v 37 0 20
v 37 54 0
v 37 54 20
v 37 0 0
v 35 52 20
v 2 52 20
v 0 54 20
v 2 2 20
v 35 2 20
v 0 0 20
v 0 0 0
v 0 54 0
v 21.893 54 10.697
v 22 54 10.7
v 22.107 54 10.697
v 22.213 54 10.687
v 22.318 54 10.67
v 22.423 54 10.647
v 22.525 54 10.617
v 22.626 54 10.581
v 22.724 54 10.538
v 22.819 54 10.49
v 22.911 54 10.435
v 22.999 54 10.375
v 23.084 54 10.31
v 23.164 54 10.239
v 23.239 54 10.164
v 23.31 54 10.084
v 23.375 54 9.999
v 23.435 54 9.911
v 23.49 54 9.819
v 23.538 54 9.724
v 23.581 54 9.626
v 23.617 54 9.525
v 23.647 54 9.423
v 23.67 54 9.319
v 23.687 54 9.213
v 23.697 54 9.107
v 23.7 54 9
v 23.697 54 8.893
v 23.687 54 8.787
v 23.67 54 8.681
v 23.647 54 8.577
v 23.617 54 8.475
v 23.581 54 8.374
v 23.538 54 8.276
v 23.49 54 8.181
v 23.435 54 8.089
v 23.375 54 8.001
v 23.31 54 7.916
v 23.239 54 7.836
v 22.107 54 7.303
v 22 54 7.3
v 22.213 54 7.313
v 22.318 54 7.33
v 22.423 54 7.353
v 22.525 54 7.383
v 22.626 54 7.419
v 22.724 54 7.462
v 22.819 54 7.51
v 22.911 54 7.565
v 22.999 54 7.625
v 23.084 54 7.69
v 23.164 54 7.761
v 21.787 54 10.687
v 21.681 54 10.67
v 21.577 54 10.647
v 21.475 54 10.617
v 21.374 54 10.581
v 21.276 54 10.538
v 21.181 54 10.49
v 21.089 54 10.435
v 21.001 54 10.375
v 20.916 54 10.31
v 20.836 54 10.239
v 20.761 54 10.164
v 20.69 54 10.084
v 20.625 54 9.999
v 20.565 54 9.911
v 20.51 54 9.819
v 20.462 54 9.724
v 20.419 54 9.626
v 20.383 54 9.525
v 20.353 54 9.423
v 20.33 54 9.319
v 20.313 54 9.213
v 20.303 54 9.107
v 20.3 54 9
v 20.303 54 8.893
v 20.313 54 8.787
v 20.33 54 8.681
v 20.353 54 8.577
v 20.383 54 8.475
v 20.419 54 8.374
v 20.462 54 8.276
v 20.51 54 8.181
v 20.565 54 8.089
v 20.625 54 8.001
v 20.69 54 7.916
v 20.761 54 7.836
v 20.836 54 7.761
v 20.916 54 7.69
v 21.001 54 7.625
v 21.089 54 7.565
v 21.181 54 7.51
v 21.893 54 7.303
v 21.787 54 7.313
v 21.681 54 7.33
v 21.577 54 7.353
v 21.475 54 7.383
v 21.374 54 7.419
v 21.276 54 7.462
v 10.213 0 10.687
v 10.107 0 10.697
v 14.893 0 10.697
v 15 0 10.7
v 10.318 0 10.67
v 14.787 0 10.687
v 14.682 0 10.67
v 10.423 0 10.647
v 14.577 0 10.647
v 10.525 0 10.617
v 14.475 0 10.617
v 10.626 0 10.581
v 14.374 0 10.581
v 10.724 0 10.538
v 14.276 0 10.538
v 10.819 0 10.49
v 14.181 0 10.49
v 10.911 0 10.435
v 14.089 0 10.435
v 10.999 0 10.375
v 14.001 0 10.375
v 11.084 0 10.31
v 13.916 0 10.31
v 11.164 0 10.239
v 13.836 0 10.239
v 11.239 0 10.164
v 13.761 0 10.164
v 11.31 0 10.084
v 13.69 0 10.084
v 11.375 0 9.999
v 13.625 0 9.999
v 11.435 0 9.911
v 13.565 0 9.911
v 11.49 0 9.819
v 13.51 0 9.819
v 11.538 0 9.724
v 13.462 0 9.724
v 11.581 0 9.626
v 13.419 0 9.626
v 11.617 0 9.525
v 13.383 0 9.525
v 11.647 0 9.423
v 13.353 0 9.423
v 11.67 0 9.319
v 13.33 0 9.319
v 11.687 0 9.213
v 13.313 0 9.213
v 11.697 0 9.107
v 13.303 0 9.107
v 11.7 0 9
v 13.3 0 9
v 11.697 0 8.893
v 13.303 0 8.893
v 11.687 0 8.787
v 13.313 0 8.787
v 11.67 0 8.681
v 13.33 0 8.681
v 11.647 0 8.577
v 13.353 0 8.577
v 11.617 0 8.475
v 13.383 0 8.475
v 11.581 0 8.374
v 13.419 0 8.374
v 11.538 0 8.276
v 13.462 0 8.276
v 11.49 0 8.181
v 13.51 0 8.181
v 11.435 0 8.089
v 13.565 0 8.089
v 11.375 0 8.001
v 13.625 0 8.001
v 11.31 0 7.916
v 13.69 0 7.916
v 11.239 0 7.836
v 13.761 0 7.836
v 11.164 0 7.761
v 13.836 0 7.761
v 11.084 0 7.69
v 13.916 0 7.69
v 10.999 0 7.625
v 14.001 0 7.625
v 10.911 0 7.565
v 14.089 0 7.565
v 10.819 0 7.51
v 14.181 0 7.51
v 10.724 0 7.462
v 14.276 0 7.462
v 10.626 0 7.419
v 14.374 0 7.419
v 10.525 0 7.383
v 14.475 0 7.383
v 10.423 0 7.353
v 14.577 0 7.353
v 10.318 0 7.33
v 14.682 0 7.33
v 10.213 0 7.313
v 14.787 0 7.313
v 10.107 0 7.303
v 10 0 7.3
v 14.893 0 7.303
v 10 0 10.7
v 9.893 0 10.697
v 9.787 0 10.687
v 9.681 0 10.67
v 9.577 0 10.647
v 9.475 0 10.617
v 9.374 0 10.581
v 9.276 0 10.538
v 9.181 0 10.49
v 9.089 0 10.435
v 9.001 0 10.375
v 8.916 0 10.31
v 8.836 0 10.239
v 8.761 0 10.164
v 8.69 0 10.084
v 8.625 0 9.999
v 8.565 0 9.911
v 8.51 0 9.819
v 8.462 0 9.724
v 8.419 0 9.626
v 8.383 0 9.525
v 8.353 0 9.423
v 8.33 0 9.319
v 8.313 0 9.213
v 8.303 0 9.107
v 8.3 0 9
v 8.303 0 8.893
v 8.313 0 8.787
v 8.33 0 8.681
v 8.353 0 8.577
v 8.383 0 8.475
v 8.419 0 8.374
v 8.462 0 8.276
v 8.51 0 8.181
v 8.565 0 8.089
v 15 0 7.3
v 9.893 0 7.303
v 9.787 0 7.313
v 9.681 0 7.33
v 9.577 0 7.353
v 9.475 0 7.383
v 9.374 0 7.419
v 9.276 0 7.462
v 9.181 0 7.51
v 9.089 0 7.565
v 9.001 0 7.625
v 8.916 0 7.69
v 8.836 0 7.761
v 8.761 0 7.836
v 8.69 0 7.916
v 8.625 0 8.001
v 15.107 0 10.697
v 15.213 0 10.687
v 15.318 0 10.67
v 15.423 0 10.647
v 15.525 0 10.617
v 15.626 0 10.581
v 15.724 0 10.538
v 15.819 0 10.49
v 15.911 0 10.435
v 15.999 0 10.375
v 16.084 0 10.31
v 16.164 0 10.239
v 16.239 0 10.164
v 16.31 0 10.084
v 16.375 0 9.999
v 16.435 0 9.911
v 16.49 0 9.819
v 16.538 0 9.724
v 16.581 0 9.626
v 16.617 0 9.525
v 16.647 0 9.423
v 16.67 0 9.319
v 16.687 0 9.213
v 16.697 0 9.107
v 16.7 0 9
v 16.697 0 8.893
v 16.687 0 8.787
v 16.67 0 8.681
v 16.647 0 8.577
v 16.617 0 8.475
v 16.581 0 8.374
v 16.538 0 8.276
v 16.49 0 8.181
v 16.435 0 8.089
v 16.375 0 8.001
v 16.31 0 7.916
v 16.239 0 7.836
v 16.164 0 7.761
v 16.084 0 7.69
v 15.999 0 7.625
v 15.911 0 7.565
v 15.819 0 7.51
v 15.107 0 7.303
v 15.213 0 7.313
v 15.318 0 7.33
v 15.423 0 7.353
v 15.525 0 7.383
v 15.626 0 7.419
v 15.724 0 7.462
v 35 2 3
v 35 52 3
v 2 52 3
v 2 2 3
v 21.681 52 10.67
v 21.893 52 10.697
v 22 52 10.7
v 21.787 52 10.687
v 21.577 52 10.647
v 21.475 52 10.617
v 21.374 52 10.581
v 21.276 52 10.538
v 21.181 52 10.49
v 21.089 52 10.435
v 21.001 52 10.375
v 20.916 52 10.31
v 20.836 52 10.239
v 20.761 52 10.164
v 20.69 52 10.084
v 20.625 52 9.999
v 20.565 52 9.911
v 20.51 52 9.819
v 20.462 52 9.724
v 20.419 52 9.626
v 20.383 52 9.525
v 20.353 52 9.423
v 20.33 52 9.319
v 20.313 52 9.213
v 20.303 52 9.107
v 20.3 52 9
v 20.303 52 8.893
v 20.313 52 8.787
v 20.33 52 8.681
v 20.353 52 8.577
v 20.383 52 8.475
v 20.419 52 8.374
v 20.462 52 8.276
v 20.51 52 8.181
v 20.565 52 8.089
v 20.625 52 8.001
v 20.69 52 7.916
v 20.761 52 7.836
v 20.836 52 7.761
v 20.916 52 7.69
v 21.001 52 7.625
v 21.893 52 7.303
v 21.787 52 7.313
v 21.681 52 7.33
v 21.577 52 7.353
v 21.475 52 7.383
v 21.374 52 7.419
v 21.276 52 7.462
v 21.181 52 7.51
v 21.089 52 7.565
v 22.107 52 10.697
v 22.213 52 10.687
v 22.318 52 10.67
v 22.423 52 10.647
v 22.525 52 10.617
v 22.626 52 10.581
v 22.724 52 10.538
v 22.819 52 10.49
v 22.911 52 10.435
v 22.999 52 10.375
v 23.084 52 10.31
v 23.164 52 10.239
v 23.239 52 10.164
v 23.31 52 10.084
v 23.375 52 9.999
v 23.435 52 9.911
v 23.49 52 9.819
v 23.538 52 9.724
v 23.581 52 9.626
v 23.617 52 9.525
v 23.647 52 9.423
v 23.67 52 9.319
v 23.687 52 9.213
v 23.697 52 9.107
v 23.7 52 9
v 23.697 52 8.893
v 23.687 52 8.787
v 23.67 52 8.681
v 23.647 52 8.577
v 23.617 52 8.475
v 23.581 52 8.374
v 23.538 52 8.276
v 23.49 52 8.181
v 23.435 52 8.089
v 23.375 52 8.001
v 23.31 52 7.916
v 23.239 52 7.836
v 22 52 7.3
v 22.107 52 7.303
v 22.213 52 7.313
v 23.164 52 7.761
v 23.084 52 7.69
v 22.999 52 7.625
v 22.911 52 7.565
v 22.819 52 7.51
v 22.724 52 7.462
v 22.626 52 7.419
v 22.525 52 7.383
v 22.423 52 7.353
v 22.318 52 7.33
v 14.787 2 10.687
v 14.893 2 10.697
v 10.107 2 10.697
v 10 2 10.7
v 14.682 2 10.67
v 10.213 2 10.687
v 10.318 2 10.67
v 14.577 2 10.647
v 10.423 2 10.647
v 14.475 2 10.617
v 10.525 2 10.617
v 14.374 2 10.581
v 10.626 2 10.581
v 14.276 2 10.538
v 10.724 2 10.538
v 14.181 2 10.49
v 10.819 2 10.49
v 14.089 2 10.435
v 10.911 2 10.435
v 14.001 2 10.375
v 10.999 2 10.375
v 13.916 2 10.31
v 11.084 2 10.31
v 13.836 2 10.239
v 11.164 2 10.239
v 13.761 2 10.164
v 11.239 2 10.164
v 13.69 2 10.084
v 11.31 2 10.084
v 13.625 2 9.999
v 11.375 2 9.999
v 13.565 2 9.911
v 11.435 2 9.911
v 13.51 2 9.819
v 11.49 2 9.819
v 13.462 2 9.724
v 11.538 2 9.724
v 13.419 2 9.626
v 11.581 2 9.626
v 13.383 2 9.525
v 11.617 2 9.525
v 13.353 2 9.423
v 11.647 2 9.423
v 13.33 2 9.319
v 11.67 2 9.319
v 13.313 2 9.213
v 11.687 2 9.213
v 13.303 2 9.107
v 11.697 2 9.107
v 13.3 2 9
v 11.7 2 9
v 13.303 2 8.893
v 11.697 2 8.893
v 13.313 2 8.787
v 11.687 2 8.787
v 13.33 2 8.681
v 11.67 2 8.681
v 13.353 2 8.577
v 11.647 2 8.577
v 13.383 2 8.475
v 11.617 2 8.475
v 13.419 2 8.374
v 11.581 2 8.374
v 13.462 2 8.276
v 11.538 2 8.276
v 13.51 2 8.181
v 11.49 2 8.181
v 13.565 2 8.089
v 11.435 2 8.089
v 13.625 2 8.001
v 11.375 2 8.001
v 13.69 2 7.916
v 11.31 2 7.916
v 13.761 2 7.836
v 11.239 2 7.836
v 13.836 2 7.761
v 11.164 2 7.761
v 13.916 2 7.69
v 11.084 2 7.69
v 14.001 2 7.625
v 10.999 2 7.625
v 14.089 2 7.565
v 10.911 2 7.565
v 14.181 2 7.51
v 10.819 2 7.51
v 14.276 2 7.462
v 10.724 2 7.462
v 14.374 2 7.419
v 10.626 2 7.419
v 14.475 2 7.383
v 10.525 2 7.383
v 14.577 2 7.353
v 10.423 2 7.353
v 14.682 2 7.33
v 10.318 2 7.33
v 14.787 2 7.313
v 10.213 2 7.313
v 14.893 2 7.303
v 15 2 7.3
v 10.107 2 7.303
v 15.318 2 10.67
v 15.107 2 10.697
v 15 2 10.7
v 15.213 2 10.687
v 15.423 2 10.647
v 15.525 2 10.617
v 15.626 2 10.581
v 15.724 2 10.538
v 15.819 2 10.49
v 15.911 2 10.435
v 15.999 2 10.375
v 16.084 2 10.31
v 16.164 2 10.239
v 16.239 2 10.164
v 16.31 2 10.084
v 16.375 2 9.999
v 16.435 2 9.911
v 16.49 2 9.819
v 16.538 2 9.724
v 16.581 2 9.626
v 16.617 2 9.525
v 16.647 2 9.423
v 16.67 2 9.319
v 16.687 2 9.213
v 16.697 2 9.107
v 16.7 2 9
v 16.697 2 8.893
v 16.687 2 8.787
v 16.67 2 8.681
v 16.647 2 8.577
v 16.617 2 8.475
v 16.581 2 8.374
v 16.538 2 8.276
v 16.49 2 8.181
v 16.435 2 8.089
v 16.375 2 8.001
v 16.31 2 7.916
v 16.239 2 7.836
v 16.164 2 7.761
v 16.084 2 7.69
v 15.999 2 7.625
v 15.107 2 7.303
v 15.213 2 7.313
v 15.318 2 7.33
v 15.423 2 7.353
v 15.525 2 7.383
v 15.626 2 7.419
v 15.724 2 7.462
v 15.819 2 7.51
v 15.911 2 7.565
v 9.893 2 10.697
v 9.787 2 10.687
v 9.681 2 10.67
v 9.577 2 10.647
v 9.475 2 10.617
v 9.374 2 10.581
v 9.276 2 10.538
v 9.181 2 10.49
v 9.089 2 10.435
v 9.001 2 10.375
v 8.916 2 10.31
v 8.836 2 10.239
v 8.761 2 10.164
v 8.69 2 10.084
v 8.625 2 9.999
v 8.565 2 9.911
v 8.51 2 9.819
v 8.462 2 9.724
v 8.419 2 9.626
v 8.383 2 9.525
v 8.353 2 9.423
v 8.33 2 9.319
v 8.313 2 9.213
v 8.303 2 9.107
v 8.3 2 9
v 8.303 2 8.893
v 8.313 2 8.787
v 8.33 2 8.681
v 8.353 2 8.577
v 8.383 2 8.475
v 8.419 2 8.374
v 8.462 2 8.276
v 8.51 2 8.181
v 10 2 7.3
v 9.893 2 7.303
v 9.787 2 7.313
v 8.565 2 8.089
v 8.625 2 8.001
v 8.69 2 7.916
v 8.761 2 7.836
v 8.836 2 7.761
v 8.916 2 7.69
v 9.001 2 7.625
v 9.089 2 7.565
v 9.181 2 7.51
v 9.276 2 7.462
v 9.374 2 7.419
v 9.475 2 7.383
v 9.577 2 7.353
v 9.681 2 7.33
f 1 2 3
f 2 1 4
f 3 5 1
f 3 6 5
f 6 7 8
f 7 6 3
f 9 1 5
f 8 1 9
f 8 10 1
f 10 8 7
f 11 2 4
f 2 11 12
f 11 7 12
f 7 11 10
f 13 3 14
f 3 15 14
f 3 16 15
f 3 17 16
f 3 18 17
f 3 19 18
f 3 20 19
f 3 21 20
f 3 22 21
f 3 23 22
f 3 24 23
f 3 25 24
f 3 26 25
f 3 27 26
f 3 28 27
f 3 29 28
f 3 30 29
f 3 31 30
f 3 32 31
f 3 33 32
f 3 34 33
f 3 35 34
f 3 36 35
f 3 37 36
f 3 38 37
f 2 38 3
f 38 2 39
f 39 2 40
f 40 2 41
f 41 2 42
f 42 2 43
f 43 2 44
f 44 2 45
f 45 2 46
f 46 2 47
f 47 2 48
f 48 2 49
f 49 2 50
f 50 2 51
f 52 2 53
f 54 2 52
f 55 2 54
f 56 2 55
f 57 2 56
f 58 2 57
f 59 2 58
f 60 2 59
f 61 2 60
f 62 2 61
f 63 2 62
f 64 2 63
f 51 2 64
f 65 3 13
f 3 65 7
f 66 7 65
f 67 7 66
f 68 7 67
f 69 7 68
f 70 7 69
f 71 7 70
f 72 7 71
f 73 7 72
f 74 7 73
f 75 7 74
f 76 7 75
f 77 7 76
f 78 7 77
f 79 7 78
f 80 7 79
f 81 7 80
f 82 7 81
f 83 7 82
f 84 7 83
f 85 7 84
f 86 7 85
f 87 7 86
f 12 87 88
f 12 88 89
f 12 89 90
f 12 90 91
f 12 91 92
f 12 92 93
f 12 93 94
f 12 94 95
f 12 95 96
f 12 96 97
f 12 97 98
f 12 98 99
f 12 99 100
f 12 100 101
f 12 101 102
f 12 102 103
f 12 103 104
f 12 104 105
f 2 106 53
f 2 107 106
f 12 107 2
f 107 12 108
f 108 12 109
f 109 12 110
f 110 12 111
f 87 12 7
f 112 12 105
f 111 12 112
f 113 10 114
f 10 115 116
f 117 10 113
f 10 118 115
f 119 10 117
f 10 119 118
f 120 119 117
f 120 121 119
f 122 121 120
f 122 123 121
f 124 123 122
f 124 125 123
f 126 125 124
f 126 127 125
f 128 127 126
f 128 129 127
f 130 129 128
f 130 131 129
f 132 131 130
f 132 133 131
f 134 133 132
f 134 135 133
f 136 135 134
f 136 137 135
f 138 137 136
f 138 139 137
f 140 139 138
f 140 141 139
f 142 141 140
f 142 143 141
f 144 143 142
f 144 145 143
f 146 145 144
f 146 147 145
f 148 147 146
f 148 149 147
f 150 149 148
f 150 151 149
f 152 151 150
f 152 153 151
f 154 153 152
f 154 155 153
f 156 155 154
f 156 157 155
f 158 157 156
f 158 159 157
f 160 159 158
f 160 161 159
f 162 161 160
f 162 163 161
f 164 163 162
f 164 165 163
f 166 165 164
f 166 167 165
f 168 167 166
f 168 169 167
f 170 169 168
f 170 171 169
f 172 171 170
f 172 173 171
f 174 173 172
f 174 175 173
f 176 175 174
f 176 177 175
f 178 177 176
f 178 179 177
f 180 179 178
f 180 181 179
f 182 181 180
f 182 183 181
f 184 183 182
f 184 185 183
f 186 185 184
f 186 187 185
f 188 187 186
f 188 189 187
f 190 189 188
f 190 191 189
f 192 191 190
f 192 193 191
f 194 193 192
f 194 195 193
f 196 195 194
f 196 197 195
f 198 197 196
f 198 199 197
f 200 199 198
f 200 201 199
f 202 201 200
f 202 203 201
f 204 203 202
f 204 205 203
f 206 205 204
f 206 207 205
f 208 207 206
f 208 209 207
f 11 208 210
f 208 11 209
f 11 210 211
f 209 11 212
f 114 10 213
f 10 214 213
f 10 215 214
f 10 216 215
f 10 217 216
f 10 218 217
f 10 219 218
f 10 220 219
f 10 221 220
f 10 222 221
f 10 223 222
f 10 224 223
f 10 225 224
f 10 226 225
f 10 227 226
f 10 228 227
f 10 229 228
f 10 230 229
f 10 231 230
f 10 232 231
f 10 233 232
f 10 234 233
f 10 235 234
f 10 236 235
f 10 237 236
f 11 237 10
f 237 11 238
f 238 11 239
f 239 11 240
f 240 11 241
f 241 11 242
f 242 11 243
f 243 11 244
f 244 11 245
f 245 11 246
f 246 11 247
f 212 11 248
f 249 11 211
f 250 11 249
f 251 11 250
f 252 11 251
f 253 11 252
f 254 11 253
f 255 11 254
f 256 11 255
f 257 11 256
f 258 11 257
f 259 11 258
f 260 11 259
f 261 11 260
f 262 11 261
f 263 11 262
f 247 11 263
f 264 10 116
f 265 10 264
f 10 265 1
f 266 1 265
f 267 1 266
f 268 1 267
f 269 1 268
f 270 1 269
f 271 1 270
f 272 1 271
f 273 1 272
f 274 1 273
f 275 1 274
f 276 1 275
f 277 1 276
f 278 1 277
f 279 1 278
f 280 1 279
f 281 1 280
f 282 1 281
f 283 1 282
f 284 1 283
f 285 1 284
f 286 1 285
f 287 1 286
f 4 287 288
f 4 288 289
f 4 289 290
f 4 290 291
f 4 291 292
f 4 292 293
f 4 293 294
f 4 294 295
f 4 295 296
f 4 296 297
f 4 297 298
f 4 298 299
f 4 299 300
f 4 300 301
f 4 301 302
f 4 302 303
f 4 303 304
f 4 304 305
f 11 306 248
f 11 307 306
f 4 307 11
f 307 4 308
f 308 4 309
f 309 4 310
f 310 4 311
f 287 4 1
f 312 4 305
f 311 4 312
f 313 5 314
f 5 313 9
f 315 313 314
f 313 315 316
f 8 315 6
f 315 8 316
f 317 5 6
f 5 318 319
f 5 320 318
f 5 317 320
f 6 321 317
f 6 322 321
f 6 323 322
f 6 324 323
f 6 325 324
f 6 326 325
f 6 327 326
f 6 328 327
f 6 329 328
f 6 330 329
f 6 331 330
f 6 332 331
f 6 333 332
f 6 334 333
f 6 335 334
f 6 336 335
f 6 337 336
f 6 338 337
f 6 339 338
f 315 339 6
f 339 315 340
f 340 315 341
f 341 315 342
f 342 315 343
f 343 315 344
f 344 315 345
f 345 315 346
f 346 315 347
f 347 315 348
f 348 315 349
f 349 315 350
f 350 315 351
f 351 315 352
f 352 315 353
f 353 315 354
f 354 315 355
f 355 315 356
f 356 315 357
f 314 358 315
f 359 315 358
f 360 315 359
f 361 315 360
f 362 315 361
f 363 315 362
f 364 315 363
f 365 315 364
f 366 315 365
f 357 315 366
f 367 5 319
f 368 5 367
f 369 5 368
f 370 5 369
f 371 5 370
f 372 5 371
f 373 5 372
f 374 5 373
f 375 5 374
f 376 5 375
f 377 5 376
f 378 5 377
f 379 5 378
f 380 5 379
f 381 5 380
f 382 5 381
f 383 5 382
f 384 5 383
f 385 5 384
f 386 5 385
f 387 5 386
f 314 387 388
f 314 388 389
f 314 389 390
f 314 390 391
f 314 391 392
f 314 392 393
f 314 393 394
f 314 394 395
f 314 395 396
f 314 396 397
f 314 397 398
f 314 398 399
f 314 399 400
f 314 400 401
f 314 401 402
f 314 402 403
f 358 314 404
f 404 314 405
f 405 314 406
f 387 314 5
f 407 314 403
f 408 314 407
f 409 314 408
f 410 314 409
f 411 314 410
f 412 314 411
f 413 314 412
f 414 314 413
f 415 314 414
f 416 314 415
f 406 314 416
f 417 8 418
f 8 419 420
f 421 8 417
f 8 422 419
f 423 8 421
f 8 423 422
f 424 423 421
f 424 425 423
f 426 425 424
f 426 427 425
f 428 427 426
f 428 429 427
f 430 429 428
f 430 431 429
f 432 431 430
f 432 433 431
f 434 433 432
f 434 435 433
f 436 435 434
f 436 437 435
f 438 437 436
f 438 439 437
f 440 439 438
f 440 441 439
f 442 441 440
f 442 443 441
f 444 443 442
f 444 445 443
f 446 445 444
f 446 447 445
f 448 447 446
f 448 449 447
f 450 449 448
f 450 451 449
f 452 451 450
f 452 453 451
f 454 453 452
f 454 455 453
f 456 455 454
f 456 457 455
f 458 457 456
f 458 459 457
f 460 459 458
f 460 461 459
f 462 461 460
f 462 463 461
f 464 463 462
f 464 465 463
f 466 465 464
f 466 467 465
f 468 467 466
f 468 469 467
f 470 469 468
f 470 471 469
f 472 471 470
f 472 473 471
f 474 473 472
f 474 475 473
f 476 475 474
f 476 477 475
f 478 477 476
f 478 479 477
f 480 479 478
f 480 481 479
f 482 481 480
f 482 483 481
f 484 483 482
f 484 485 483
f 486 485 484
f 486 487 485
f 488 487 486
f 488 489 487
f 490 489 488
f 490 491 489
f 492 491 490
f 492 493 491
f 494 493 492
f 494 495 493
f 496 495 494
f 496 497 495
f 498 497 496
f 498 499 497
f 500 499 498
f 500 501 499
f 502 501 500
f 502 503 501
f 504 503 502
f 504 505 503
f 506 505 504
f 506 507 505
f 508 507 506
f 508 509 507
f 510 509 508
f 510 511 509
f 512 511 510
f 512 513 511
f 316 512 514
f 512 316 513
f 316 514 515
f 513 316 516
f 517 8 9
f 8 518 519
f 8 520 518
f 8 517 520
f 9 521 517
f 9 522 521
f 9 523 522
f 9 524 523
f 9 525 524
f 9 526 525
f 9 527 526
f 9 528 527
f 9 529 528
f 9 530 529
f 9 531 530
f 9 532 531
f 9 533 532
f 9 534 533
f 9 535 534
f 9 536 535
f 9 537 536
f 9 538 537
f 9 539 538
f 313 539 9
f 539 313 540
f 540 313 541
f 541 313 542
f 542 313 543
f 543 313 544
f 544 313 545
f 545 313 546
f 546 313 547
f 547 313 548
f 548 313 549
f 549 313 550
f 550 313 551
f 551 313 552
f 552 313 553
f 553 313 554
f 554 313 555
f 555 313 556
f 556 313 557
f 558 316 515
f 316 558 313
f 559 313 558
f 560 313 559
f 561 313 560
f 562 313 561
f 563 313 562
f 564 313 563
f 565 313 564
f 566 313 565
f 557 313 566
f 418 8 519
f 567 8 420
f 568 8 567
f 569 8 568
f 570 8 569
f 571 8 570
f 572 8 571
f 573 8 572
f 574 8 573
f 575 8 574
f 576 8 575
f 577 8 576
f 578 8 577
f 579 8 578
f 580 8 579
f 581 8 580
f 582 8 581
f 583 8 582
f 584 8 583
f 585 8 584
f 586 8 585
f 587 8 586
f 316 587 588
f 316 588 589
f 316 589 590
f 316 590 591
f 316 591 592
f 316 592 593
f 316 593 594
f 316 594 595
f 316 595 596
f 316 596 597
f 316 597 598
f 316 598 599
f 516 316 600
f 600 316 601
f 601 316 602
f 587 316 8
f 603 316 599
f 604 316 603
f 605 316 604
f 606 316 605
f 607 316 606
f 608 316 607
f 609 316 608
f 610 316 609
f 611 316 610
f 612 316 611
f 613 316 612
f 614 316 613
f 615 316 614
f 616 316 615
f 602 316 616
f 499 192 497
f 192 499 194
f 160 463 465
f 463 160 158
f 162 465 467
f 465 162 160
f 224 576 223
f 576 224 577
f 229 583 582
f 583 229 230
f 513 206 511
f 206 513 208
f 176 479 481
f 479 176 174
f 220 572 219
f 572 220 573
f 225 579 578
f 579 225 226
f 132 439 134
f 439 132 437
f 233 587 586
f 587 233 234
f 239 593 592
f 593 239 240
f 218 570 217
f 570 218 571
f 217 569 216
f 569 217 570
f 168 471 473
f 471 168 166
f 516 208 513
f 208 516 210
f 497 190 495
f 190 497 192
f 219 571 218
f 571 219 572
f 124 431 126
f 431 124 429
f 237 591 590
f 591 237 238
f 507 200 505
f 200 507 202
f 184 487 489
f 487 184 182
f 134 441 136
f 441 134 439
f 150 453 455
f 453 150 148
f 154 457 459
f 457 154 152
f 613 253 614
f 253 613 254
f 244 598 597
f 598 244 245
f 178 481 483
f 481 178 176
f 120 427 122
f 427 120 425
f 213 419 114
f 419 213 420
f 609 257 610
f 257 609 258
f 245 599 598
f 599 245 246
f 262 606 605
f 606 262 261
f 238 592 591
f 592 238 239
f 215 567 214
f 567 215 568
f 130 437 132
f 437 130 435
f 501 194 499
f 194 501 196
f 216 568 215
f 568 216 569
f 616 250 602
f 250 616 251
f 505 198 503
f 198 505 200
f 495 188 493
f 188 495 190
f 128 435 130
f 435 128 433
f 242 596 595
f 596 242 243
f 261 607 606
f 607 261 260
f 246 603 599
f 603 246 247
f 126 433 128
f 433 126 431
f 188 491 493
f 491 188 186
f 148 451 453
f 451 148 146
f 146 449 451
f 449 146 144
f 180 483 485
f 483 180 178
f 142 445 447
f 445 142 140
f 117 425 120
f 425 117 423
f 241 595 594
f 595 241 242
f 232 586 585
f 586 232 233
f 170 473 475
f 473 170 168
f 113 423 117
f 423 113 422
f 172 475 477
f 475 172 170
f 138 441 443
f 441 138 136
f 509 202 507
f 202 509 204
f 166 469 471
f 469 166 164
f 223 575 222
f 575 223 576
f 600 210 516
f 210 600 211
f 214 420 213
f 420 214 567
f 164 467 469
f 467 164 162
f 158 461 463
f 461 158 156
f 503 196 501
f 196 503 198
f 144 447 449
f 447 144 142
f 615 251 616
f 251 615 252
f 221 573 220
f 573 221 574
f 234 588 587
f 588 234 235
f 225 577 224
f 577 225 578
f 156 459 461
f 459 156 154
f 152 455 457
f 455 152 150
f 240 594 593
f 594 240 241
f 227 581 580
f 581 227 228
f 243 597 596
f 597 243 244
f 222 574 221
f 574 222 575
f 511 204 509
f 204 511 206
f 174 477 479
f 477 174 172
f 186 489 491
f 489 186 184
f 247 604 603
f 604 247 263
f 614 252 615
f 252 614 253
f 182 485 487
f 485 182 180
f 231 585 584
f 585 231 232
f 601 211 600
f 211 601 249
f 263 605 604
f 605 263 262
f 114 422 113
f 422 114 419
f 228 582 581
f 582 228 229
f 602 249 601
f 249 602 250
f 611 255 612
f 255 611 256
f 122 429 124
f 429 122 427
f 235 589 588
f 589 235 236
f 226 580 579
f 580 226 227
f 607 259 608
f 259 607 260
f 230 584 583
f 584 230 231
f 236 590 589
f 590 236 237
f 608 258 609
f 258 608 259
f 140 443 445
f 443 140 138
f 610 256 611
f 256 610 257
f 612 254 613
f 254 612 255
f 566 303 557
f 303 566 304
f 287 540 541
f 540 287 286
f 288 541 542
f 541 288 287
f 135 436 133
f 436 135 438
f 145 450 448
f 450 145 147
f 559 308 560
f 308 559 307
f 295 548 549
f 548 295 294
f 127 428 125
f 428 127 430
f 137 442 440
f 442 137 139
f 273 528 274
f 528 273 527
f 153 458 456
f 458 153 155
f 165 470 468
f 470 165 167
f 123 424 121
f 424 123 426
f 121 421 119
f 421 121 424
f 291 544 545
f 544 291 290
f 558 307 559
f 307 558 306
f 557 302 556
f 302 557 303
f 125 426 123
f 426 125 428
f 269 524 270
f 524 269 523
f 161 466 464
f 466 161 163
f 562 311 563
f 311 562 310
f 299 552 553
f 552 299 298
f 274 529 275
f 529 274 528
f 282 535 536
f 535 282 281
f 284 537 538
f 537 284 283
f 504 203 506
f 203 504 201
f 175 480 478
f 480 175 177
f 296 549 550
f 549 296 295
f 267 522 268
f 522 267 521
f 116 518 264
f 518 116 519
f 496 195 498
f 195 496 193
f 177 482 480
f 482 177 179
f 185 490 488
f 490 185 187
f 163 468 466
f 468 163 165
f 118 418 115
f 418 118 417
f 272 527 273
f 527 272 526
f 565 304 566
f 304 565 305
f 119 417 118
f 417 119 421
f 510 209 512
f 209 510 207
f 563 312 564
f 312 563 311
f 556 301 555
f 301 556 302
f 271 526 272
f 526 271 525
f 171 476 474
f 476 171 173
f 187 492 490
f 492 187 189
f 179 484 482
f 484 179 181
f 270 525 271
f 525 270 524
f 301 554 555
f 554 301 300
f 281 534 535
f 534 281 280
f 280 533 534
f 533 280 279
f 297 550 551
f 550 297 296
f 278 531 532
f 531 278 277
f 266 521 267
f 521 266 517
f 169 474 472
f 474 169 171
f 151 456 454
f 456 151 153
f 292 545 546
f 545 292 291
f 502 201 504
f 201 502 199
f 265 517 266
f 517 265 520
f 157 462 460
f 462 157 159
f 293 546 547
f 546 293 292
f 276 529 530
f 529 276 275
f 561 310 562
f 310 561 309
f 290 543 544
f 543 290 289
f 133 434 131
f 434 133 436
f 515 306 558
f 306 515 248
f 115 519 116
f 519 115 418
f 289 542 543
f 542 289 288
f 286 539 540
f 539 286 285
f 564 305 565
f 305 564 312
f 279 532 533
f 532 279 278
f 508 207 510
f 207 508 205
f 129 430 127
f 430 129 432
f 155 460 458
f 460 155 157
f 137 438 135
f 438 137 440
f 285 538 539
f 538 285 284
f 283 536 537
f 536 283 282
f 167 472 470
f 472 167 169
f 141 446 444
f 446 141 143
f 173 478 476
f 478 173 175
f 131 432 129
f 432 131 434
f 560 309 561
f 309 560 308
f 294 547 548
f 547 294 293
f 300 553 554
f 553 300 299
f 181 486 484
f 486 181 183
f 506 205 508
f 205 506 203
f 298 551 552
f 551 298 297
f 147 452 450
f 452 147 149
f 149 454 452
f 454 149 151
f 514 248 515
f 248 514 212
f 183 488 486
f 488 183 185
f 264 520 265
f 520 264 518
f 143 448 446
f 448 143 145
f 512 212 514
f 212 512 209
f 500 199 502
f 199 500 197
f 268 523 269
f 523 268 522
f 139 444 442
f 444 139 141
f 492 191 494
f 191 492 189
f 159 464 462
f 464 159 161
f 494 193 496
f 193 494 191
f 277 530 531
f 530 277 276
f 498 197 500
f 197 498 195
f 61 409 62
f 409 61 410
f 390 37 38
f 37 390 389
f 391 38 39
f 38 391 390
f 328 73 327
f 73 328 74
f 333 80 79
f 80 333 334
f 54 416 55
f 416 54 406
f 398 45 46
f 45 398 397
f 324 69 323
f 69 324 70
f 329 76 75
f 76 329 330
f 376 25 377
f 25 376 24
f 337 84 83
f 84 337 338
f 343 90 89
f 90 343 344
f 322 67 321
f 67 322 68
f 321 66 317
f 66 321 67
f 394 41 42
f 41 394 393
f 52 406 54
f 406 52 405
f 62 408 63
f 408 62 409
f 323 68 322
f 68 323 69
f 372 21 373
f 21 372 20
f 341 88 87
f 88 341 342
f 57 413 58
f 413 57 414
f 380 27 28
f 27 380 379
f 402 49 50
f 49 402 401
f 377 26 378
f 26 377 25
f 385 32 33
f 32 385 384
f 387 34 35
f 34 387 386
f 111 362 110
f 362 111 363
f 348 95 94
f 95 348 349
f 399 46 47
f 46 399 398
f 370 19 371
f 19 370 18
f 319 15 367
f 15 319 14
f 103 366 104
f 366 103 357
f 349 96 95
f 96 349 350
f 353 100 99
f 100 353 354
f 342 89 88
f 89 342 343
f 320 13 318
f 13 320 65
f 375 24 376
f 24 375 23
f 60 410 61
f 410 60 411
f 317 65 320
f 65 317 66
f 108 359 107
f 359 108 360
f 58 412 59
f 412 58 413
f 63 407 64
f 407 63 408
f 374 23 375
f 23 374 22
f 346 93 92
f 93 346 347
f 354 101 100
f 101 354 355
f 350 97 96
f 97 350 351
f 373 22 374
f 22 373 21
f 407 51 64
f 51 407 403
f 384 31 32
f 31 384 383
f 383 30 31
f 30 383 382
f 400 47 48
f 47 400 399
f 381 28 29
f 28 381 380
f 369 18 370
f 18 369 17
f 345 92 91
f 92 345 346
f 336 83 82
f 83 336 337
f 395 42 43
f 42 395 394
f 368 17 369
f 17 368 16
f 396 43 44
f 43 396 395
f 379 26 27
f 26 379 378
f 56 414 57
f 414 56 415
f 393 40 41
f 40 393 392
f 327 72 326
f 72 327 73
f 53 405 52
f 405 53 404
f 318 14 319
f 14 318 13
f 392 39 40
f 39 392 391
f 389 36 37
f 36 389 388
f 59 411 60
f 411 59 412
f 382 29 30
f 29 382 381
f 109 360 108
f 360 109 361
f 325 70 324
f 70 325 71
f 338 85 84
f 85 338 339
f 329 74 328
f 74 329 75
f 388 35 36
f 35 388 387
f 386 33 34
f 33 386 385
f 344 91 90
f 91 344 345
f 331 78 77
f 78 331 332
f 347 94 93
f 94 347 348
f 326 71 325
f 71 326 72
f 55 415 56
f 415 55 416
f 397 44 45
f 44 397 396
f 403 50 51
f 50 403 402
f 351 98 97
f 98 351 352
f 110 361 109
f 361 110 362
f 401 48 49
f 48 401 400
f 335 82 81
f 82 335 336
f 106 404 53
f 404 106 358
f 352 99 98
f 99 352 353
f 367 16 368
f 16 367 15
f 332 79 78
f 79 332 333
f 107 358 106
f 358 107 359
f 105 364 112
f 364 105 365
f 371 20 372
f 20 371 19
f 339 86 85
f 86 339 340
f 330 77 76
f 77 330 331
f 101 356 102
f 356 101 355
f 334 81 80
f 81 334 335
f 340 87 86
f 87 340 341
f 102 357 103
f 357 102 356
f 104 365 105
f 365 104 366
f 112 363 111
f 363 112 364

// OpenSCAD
hole_radius=1.7;
hole_z=9;
box_z=20;

module box1() {
difference(){
cube([37,54,box_z]);
translate([2,2,+3]) cube([33,50,box_z+9]);}
}

module cylinderCut(){
rotate([90,0,0]) cylinder(h=5,r=hole_radius, $fn=100); //cylinder for cutting holes for wires
}

difference(){
box1();
translate([10,3,hole_z]) cylinderCut();
translate([15,3,hole_z]) cylinderCut();
translate([22,55,hole_z]) cylinderCut();
}
